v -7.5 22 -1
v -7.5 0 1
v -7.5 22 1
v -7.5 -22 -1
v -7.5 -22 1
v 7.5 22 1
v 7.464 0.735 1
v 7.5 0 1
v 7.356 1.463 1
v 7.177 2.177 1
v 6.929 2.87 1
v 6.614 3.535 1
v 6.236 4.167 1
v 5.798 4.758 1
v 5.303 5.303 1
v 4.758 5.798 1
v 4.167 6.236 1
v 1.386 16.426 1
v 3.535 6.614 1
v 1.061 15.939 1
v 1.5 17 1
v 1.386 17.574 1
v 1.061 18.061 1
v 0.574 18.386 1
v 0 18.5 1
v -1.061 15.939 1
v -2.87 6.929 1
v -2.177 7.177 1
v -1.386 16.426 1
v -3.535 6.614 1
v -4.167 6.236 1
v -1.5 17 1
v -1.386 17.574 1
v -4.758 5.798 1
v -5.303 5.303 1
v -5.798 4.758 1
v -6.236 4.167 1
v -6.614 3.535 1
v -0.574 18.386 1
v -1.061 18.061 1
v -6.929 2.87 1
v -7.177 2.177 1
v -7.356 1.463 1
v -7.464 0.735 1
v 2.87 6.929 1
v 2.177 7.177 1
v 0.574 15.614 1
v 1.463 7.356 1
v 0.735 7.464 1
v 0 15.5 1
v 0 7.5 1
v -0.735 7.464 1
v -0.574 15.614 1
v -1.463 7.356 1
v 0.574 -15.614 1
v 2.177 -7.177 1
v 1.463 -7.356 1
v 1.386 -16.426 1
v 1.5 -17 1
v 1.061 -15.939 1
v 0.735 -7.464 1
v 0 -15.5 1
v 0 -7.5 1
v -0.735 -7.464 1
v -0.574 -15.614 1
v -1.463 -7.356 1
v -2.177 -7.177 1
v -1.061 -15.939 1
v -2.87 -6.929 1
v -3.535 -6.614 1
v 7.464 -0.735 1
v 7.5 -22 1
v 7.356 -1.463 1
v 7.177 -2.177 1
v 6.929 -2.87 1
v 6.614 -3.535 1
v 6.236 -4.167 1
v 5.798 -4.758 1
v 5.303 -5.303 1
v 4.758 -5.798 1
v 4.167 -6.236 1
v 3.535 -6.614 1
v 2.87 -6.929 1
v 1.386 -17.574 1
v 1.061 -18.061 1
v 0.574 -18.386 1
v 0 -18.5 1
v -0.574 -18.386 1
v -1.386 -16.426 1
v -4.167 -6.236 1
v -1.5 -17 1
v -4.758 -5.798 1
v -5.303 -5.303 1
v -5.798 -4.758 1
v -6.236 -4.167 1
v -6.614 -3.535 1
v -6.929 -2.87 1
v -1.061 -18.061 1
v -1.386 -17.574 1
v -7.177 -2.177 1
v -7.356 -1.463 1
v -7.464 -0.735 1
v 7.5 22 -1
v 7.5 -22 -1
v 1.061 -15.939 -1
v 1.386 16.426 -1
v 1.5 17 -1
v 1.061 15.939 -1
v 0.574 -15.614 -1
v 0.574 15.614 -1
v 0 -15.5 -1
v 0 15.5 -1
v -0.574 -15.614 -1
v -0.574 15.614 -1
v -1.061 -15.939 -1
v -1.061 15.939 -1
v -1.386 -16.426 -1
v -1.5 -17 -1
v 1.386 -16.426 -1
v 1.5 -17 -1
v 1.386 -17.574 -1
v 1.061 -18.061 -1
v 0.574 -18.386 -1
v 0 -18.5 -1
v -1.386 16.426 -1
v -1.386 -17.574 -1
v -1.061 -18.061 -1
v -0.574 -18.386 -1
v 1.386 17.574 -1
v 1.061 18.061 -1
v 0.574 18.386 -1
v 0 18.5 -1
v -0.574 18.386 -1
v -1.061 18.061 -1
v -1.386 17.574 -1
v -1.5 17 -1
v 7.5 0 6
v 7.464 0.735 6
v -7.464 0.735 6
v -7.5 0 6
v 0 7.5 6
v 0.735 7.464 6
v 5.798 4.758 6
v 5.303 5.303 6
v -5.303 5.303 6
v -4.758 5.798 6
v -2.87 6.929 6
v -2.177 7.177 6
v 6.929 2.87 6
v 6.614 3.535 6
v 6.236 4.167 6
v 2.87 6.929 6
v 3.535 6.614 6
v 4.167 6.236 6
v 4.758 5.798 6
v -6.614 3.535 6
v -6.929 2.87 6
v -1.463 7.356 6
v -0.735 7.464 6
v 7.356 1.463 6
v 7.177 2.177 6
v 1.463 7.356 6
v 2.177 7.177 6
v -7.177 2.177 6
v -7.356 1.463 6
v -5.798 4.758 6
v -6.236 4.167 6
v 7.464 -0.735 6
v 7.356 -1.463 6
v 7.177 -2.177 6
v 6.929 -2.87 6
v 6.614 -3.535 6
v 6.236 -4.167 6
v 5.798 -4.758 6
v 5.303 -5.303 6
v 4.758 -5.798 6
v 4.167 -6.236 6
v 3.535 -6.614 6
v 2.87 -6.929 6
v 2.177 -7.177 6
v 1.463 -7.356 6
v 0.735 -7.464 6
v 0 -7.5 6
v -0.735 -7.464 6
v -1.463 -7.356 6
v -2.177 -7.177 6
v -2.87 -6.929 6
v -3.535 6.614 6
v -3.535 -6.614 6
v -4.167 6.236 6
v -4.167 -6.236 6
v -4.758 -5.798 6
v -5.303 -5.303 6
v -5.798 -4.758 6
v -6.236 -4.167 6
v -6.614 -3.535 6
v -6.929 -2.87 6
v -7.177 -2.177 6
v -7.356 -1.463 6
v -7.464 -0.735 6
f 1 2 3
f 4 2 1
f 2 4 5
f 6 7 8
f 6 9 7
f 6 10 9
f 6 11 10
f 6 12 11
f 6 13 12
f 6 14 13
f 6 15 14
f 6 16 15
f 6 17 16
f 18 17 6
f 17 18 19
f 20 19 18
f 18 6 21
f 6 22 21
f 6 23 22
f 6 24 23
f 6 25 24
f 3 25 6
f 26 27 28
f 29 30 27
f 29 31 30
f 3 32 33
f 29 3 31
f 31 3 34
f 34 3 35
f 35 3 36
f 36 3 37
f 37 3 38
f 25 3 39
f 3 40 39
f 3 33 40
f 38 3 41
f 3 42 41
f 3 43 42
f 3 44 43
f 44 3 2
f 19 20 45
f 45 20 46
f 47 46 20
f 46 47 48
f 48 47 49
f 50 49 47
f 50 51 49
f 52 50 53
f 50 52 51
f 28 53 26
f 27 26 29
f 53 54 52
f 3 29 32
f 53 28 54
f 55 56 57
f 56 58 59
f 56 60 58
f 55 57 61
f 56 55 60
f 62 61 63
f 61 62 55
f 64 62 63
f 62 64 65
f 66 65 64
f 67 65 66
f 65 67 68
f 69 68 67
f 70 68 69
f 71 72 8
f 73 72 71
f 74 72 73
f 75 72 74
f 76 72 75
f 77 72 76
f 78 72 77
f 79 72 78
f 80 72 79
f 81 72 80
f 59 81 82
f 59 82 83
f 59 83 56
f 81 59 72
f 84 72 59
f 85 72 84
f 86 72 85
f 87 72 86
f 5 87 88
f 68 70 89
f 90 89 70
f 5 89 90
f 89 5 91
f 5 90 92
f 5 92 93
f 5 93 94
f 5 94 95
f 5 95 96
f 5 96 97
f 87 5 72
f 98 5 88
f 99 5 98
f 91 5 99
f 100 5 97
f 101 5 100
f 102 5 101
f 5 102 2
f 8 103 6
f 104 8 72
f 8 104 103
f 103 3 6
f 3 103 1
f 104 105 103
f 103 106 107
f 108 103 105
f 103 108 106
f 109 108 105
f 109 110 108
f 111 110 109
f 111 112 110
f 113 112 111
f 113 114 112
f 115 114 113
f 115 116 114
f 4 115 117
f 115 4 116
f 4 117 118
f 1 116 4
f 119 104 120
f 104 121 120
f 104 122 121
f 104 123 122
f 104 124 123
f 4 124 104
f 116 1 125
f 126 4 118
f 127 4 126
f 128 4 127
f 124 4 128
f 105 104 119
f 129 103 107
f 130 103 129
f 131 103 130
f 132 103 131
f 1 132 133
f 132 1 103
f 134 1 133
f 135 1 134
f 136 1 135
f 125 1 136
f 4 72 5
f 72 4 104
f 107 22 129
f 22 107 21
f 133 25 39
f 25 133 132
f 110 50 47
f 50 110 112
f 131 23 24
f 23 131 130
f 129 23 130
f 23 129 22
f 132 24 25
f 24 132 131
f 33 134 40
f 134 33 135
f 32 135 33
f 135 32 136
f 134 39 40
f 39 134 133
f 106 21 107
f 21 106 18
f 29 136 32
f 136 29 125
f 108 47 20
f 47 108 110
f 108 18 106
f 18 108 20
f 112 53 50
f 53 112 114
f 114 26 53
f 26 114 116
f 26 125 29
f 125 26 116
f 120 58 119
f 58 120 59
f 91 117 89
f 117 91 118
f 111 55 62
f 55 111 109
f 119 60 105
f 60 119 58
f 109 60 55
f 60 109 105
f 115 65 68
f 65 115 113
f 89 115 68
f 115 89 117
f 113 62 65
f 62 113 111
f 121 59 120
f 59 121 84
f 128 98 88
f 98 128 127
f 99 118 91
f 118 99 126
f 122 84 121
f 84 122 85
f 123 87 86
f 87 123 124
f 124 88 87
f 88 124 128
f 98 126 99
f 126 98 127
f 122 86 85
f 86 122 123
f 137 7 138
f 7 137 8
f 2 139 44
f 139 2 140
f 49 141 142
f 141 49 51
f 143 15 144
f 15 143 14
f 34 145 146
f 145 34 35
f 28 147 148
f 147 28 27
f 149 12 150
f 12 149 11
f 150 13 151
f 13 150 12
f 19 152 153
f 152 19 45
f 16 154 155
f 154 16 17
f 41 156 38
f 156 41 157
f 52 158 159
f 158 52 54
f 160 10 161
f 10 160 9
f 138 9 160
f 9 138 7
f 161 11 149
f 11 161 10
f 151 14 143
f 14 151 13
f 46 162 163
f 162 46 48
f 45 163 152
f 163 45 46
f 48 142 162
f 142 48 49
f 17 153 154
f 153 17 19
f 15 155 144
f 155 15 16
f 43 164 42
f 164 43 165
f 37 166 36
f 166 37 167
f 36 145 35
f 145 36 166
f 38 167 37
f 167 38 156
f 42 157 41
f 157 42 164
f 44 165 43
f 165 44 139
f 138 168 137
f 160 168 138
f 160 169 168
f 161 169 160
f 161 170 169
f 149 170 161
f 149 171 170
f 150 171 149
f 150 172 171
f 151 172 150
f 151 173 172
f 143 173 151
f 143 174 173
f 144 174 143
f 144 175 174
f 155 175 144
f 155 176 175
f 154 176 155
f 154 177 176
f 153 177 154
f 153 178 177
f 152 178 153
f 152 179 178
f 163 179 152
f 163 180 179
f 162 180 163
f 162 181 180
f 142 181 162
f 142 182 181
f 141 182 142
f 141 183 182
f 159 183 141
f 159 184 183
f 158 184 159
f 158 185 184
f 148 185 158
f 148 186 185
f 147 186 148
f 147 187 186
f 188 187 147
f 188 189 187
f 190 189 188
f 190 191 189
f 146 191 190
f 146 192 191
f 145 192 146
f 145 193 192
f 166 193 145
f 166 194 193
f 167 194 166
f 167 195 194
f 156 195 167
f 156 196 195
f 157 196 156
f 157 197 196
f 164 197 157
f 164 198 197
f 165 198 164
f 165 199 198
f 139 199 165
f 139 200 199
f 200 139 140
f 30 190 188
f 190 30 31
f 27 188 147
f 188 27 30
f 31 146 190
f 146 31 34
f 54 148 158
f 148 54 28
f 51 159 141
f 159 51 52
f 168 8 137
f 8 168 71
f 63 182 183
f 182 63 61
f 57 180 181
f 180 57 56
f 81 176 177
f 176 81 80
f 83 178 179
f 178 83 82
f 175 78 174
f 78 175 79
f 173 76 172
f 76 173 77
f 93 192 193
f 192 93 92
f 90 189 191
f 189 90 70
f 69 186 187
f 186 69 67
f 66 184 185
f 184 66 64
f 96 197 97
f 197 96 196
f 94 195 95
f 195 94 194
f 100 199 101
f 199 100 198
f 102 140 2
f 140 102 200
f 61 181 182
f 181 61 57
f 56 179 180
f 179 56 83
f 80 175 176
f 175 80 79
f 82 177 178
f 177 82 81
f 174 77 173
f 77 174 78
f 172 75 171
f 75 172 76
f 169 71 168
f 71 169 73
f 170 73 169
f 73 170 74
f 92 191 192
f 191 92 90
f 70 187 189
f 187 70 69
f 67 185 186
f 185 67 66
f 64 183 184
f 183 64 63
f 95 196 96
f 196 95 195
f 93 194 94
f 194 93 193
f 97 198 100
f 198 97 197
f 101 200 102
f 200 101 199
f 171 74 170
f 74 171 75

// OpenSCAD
difference() {
cube([15, 44, 2], center=true);
translate([0, 34/2, 0])
  cylinder(r=1.5, h = 20, center=true, $fn=16);
translate([0, -34/2, 0])
  cylinder(r=1.5, h = 20, center=true, $fn=16);
}



translate([0, 0, (5+2)/2])
  cylinder(r=7.5, h = 5, center=true, $fn=64);
  
